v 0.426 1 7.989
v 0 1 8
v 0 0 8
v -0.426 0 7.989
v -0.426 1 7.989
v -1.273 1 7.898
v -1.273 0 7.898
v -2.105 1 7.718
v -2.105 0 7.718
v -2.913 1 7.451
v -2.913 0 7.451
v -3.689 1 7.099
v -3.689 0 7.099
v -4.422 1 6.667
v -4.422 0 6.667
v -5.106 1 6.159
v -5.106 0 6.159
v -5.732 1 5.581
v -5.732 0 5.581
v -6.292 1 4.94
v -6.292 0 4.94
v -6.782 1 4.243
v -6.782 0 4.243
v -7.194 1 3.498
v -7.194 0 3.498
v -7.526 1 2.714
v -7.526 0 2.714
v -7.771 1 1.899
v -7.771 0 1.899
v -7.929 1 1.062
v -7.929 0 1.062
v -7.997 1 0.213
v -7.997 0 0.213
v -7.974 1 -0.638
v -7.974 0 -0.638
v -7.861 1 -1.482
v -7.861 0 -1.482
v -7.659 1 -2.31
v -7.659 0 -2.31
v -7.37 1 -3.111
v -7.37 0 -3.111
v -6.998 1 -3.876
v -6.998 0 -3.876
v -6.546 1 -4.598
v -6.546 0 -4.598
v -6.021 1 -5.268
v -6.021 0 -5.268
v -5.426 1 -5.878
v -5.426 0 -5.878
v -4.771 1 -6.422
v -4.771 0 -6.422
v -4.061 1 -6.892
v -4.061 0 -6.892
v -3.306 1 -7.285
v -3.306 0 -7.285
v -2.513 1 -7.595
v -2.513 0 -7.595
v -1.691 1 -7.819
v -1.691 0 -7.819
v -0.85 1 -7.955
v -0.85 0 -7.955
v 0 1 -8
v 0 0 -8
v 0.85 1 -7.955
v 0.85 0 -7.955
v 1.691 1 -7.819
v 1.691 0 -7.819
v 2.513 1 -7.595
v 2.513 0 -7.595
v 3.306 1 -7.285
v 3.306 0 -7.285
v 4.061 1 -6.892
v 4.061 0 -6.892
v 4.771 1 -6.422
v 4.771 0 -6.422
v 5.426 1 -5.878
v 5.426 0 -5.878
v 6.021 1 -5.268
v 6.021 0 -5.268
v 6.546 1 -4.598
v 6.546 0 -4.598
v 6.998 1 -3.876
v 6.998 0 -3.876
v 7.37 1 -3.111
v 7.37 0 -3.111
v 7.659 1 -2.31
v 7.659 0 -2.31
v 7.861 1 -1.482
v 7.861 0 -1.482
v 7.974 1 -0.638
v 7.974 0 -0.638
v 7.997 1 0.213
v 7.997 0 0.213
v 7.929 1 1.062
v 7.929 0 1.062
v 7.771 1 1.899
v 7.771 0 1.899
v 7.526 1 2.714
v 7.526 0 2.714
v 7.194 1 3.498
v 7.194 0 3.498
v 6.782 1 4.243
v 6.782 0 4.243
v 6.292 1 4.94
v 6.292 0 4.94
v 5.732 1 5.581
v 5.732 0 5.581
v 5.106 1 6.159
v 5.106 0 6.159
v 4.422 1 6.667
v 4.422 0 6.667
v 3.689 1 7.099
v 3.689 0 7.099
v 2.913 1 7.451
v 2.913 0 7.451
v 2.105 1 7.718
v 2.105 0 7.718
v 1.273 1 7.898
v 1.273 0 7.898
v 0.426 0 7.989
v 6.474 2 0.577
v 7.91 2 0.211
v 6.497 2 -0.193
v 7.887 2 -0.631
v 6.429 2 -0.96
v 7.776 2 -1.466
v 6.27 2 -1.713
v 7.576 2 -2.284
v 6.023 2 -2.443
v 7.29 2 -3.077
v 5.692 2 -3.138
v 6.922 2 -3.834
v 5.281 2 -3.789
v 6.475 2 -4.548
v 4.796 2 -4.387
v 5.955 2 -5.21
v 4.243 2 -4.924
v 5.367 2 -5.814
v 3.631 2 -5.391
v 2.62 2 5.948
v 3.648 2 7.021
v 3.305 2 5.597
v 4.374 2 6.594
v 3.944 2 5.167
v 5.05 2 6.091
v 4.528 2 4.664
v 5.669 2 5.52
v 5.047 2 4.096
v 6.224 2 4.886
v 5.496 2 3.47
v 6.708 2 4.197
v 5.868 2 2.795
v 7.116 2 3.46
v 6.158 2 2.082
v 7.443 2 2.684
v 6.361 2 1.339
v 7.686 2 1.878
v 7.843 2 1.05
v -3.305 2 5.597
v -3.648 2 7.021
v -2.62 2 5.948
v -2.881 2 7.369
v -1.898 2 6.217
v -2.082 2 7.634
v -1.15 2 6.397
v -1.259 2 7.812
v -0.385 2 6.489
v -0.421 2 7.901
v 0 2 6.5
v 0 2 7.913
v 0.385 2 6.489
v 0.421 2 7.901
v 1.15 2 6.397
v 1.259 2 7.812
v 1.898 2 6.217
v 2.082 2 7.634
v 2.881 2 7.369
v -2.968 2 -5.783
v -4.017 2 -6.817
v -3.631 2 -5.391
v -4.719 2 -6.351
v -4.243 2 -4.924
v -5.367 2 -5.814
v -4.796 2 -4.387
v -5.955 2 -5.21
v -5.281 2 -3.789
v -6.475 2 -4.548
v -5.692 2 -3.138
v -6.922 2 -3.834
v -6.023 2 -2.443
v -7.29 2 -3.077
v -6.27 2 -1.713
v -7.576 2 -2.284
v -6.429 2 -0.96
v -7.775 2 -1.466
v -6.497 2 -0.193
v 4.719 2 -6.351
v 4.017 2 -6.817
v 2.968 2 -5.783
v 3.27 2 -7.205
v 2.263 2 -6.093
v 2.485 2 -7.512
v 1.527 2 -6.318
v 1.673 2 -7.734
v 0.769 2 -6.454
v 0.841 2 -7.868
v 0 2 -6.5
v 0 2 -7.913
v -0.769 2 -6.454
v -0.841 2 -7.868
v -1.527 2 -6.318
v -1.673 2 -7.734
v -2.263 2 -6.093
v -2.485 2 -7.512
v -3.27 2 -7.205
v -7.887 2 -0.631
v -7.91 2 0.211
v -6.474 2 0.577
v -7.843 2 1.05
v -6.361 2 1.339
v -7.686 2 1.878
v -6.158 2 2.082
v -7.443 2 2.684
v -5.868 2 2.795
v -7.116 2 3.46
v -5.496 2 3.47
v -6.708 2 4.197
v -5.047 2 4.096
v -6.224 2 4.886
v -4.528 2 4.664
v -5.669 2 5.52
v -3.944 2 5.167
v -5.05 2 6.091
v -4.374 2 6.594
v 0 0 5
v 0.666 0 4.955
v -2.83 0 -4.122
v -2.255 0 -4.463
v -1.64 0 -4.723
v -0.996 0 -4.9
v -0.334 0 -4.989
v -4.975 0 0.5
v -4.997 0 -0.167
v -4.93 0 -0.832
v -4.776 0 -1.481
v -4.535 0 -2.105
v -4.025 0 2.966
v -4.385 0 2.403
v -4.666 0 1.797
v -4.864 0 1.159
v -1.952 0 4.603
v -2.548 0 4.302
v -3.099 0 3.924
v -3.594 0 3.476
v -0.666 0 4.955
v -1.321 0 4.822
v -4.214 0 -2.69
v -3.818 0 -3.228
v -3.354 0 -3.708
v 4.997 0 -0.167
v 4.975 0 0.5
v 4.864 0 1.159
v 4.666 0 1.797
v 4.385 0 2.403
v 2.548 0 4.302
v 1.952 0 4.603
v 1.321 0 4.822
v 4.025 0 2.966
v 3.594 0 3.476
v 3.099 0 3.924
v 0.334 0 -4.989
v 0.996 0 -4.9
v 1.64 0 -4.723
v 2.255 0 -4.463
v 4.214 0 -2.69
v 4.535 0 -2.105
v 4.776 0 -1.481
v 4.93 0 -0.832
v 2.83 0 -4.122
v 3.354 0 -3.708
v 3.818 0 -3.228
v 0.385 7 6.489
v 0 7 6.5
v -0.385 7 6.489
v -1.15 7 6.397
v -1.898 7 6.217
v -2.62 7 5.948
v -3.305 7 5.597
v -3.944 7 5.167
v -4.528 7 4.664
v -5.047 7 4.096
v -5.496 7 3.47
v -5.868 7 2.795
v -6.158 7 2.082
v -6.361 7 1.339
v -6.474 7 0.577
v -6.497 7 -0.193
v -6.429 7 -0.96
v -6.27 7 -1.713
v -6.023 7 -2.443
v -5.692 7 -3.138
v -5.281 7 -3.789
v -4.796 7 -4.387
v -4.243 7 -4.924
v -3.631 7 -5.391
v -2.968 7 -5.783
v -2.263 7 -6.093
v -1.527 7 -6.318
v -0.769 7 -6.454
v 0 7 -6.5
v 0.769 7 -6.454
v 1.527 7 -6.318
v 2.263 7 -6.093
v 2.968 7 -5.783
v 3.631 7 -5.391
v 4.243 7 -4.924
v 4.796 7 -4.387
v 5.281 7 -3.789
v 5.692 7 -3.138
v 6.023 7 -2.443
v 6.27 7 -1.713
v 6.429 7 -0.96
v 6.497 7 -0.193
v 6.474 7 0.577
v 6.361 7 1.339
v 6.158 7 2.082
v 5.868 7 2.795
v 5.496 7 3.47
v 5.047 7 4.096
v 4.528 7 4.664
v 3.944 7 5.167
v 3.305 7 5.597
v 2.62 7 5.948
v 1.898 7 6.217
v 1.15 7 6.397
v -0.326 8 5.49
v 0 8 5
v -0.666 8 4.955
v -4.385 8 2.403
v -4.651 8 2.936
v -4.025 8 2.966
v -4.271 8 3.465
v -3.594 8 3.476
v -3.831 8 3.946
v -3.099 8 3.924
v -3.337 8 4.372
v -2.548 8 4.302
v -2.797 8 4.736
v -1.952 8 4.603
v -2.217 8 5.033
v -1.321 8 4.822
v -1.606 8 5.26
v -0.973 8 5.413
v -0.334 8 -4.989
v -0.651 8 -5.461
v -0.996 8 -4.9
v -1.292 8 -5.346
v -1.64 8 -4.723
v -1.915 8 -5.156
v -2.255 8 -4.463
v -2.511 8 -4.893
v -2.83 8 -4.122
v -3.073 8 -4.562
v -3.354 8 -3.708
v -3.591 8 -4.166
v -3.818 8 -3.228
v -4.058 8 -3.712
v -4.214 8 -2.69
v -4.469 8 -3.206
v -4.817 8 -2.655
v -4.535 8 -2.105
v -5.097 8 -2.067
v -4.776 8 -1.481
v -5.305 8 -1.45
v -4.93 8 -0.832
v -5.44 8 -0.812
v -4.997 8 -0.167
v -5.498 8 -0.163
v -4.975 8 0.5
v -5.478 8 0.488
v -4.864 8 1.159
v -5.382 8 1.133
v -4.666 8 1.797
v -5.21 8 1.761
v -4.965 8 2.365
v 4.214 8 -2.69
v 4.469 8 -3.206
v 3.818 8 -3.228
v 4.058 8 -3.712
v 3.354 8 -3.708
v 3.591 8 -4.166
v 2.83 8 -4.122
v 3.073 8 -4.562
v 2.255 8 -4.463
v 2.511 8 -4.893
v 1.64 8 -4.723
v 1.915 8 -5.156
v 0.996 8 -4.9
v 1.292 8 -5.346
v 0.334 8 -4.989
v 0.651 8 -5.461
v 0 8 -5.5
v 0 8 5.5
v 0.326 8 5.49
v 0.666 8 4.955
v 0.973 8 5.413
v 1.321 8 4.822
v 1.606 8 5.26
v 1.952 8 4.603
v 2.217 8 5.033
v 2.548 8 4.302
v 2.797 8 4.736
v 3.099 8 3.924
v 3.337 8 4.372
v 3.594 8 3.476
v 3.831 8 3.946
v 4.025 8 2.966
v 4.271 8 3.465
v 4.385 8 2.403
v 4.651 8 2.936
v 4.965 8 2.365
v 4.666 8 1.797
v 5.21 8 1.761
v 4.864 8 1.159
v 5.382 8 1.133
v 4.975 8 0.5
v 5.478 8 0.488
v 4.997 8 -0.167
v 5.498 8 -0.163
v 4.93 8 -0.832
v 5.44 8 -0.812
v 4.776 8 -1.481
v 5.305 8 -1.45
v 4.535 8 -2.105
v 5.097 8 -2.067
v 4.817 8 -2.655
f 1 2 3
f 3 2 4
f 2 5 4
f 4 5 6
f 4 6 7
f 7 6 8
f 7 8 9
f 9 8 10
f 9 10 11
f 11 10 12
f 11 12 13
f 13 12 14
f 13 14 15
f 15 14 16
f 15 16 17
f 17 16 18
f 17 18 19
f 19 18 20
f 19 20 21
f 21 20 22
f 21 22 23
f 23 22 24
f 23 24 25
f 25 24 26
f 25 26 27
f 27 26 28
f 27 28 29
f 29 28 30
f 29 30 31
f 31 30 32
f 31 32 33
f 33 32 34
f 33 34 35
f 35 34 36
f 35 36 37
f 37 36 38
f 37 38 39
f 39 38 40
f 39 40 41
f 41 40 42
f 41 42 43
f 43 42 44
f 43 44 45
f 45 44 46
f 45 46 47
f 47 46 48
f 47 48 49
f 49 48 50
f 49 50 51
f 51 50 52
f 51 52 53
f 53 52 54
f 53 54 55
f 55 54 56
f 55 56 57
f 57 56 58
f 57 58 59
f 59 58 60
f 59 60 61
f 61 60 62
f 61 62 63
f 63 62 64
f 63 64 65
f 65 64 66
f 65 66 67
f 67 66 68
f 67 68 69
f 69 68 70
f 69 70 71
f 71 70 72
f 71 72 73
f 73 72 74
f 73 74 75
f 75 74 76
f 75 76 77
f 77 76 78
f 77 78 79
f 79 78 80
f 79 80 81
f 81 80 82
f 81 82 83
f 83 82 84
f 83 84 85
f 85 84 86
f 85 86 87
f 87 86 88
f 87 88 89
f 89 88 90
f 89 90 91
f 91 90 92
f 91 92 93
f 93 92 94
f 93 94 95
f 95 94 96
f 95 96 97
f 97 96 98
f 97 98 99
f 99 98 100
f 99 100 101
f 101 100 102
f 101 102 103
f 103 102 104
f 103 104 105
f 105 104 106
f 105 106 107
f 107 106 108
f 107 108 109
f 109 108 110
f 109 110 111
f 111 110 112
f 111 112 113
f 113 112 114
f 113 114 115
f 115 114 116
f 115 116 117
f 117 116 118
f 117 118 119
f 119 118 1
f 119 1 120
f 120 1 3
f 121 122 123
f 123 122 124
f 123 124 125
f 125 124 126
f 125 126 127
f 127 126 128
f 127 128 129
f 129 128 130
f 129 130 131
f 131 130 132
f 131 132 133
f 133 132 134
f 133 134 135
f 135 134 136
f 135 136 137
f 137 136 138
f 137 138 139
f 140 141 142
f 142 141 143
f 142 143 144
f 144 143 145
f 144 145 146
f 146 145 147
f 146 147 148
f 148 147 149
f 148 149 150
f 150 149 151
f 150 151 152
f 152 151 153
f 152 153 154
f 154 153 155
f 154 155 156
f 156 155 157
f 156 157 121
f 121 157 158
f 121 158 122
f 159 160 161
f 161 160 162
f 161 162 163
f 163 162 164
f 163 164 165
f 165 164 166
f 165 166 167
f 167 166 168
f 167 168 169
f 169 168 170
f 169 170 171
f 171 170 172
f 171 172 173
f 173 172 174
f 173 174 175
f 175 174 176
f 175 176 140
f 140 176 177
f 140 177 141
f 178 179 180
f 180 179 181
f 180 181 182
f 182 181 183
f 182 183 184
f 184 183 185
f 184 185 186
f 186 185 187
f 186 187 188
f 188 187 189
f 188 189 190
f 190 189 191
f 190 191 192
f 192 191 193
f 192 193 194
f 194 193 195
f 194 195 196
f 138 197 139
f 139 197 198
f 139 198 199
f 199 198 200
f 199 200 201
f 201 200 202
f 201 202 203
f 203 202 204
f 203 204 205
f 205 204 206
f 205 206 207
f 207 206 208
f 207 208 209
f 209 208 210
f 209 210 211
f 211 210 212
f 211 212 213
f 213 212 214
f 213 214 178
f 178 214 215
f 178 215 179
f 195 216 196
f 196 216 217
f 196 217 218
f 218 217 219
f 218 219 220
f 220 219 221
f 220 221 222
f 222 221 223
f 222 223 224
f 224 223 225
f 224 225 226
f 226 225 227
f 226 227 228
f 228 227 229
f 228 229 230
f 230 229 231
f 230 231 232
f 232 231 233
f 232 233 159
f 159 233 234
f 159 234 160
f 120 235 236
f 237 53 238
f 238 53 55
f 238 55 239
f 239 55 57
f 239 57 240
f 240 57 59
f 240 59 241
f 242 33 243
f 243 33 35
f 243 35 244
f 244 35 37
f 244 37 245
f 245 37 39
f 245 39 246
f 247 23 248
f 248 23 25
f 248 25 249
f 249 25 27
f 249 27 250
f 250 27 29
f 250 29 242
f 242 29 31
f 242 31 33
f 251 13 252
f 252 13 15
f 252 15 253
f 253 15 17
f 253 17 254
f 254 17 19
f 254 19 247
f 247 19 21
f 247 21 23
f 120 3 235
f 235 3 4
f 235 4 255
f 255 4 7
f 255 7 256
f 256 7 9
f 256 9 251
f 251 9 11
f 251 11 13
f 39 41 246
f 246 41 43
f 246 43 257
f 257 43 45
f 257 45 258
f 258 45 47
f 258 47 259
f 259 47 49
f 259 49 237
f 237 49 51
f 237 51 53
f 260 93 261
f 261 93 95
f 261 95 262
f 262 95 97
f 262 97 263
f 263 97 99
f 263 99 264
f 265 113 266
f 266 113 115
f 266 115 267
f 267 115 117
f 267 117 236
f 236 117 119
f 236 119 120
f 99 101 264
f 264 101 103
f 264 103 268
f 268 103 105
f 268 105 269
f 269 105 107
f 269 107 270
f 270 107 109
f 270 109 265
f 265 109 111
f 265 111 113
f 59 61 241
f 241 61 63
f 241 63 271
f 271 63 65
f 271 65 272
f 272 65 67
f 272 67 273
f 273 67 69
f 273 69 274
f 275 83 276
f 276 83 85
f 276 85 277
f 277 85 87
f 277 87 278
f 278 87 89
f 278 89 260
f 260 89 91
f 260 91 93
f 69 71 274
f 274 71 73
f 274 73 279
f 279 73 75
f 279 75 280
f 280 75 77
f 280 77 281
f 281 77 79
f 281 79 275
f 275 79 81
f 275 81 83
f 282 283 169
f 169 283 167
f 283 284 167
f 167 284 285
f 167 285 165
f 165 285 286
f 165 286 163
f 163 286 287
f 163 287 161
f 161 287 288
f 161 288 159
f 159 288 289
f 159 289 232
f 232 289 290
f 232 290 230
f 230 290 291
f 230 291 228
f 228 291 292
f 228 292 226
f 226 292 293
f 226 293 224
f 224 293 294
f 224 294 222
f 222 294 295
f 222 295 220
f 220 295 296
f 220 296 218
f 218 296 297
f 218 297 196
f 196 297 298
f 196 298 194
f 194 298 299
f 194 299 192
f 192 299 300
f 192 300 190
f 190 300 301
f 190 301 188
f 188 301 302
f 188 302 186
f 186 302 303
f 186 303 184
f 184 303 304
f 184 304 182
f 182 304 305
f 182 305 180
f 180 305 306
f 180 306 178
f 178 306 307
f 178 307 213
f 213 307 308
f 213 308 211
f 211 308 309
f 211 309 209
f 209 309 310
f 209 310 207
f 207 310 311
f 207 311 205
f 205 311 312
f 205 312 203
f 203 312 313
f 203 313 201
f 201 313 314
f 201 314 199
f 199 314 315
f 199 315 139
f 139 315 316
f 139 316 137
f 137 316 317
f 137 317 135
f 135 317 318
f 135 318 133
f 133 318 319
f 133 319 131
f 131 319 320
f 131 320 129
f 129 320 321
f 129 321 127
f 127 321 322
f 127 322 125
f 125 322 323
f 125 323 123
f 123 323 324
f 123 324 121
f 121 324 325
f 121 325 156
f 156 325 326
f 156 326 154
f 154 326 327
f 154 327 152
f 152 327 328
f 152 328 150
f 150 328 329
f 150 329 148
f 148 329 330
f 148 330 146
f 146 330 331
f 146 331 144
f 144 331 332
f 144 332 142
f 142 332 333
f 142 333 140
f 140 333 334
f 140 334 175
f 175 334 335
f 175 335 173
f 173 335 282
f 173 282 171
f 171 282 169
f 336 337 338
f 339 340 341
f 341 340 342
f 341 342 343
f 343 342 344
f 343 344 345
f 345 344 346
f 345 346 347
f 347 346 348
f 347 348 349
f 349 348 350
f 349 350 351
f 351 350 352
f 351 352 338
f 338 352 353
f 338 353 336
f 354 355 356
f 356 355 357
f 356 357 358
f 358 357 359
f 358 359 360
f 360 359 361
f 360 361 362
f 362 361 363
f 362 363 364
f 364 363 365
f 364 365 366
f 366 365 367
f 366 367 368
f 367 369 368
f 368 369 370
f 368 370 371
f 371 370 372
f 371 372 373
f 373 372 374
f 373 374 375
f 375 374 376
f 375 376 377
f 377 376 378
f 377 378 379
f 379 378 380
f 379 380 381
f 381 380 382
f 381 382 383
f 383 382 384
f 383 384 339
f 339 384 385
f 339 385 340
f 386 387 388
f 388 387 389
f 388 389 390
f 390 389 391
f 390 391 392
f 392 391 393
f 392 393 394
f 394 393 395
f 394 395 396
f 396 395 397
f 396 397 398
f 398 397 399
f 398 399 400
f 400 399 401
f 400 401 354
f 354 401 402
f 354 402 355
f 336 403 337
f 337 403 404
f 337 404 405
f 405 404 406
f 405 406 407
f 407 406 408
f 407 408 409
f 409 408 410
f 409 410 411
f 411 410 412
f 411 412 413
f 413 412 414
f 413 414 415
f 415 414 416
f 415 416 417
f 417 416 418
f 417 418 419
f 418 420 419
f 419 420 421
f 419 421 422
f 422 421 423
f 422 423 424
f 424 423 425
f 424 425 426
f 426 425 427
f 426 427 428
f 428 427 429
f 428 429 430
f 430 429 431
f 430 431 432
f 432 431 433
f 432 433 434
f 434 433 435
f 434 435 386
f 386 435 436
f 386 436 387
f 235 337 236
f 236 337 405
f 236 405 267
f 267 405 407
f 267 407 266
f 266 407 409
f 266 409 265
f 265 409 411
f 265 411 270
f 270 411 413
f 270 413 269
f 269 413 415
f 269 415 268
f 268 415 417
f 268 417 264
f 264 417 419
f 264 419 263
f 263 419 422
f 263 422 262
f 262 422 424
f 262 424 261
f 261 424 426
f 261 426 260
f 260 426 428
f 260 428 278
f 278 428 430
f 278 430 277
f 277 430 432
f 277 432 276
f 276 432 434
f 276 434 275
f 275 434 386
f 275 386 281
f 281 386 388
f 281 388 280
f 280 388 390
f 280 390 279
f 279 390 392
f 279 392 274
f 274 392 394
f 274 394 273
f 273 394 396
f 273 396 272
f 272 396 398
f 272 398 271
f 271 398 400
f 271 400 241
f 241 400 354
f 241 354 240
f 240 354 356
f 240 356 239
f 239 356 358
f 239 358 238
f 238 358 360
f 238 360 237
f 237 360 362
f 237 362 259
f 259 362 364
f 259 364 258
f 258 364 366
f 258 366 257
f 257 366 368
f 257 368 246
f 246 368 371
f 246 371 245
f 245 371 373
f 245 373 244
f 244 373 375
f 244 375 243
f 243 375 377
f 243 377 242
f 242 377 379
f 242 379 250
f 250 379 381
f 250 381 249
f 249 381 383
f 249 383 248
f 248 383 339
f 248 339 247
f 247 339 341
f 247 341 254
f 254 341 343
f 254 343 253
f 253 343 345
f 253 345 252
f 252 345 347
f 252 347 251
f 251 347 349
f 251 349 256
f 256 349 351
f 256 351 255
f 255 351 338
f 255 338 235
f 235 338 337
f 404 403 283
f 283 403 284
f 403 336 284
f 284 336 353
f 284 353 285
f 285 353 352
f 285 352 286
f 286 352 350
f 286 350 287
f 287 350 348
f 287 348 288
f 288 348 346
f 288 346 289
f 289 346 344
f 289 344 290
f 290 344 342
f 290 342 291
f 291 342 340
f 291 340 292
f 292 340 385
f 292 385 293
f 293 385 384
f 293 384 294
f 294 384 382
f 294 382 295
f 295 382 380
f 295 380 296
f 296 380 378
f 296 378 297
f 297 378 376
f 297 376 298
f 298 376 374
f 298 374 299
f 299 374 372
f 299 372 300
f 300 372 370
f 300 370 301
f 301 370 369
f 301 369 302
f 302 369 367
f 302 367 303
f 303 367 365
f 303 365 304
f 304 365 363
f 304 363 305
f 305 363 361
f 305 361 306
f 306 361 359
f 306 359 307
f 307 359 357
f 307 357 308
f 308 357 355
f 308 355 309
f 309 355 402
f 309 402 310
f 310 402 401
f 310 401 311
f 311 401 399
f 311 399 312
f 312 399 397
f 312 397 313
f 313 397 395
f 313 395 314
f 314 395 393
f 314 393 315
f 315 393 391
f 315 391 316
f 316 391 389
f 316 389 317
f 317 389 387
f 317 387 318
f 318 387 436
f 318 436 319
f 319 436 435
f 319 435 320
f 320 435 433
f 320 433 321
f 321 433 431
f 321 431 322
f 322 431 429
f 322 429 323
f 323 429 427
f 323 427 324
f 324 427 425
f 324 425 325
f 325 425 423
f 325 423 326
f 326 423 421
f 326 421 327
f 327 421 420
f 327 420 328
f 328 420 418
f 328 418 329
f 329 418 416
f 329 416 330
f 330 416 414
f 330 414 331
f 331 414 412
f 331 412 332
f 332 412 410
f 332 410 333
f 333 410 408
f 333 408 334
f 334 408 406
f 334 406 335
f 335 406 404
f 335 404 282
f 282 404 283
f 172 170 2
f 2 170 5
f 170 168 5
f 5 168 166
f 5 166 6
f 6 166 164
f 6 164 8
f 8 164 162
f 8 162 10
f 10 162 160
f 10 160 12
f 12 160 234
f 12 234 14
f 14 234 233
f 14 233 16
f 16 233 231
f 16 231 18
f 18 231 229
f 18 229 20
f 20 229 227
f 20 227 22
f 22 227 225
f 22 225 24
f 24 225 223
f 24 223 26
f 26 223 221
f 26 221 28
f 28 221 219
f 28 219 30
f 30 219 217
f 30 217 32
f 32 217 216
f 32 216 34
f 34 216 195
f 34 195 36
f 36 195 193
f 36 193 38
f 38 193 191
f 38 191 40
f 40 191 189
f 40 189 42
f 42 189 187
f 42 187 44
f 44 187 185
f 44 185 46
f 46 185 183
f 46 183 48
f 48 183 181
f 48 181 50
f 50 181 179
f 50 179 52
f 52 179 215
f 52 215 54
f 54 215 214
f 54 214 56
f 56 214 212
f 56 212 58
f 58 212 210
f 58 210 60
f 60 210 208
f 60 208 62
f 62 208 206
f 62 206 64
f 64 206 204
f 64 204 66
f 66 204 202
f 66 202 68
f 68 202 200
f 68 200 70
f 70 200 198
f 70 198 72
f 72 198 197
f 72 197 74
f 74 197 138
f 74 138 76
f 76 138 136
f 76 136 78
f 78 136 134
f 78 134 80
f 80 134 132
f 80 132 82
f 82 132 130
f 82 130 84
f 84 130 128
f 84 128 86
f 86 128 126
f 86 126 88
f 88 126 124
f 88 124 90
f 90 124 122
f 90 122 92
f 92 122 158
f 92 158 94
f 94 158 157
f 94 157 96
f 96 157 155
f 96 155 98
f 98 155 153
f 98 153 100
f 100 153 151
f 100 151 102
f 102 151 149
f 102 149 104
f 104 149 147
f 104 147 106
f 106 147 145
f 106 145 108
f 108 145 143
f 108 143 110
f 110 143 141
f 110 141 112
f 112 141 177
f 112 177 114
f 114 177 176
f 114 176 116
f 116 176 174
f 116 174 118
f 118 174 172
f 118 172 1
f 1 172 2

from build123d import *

# Parameters (mm, degrees)
SKETCH1_R           = 8
BOSS_EXTRUDE1_DEPTH = 2
SKETCH2_R           = 6.5
BOSS_EXTRUDE2_DEPTH = 6
SKETCH3_R           = 5
CUT_EXTRUDE1_DEPTH  = 8
CHAMFER1_SIZE       = 1
CHAMFER2_SIZE       = 1
CHAMFER2_SIZE2      = 0.087488664


with BuildPart() as part:
    # Sketch1 → Boss-Extrude1 (new body)
    with BuildSketch(Plane(origin=(0, 0, 0), x_dir=(1, 0, 0), z_dir=(0, 1, 0))):
        with Locations(Location((0, 0, 0), (0, 0, 270))):
            Circle(SKETCH1_R)
    extrude(amount=BOSS_EXTRUDE1_DEPTH)

    # Sketch2 → Boss-Extrude2 (add)
    with BuildSketch(Plane(origin=(0, 2, 0), x_dir=(1, 0, 0), z_dir=(0, 1, 0))):
        with Locations(Location((0, 0, 0), (0, 0, 270))):
            Circle(SKETCH2_R)
    extrude(amount=BOSS_EXTRUDE2_DEPTH)

    # Sketch3 → Cut-Extrude1 (cut)
    with BuildSketch(Plane(origin=(0, 8, 0), x_dir=(1, 0, 0), z_dir=(0, 1, 0))):
        with Locations(Location((0, 0, 0), (0, 0, 270))):
            Circle(SKETCH3_R)
    extrude(amount=-CUT_EXTRUDE1_DEPTH, mode=Mode.SUBTRACT)

    # Chamfer1
    chamfer1_edges = [part.edges().sort_by_distance(p)[0] for p in [
        (0, 8, -6.5),
    ]]
    chamfer(chamfer1_edges, length=CHAMFER1_SIZE)

    # Chamfer2
    chamfer2_edges = [part.edges().sort_by_distance(p)[0] for p in [
        (0, 2, -8),
    ]]
    chamfer2_side = [part.faces().sort_by_distance(p)[0] for p in [
        (0, 1, -8),
    ]]
    chamfer(chamfer2_edges, length=CHAMFER2_SIZE, length2=CHAMFER2_SIZE2, reference=chamfer2_side[0])


solid = part.part
